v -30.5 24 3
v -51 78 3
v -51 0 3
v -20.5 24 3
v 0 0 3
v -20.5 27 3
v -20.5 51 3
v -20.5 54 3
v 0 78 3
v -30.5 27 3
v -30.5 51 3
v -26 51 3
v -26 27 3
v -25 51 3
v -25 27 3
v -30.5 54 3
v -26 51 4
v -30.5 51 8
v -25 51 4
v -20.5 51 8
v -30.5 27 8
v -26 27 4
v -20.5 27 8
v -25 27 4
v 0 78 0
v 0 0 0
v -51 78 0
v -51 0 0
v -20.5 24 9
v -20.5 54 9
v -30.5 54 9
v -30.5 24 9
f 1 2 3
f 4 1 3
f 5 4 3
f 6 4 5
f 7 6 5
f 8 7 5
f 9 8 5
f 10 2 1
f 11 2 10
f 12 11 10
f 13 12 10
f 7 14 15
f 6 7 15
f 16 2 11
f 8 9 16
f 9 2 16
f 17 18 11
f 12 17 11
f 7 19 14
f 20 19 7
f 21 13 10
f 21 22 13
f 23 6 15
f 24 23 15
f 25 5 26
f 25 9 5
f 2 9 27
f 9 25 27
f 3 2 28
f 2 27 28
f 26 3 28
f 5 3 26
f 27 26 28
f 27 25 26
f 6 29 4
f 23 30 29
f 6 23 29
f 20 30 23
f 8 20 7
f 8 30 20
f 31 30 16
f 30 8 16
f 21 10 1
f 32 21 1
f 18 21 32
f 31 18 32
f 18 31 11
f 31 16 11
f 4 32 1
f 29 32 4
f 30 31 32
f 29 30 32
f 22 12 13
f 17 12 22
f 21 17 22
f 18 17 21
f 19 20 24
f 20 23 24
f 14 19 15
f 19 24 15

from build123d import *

# Parameters (mm, degrees)
SKETCH1_W           = 51
SKETCH1_H           = 78
BOSS_EXTRUDE1_DEPTH = 3
SKETCH2_W           = 10
SKETCH2_H           = 30
BOSS_EXTRUDE3_DEPTH = 6
SKETCH3_W           = 6
SKETCH3_H           = 24
CUT_EXTRUDE1_DEPTH  = 31.5
BOSS_EXTRUDE4_REACH = 53


with BuildPart() as part:
    # Sketch1 → Boss-Extrude1 (new body)
    with BuildSketch(Plane.XY):
        with Locations((-25.5, 39)):
            Rectangle(SKETCH1_W, SKETCH1_H)
    extrude(amount=BOSS_EXTRUDE1_DEPTH)

    # Sketch2 → Boss-Extrude3 (add)
    with BuildSketch(Plane.XY.offset(3)):
        with Locations((-25.5, 39)):
            Rectangle(SKETCH2_W, SKETCH2_H)
    extrude(amount=BOSS_EXTRUDE3_DEPTH)

    # Sketch3 → Cut-Extrude1 (cut, through all)
    with BuildSketch(Plane.ZY.offset(30.5)):
        with Locations((6, 39)):
            Rectangle(SKETCH3_W, SKETCH3_H)
    extrude(amount=-CUT_EXTRUDE1_DEPTH, mode=Mode.SUBTRACT)

    # Sketch5 → Boss-Extrude4 (add, up to next)
    with BuildSketch(Plane.XZ.offset(-51), mode=Mode.PRIVATE) as boss_extrude4_sk1:
        Polygon((-30.5, 9), (-20.5, 9), (-20.5, 8), (-25, 4), (-25, 3), (-26, 3), (-26, 4), (-30.5, 8), align=None)
    boss_extrude4_tool1 = extrude(boss_extrude4_sk1.sketch, amount=BOSS_EXTRUDE4_REACH, mode=Mode.PRIVATE) - part.part
    add(boss_extrude4_tool1.solids().sort_by_distance((-25.5, 51, 7.045455))[0])


solid = part.part
